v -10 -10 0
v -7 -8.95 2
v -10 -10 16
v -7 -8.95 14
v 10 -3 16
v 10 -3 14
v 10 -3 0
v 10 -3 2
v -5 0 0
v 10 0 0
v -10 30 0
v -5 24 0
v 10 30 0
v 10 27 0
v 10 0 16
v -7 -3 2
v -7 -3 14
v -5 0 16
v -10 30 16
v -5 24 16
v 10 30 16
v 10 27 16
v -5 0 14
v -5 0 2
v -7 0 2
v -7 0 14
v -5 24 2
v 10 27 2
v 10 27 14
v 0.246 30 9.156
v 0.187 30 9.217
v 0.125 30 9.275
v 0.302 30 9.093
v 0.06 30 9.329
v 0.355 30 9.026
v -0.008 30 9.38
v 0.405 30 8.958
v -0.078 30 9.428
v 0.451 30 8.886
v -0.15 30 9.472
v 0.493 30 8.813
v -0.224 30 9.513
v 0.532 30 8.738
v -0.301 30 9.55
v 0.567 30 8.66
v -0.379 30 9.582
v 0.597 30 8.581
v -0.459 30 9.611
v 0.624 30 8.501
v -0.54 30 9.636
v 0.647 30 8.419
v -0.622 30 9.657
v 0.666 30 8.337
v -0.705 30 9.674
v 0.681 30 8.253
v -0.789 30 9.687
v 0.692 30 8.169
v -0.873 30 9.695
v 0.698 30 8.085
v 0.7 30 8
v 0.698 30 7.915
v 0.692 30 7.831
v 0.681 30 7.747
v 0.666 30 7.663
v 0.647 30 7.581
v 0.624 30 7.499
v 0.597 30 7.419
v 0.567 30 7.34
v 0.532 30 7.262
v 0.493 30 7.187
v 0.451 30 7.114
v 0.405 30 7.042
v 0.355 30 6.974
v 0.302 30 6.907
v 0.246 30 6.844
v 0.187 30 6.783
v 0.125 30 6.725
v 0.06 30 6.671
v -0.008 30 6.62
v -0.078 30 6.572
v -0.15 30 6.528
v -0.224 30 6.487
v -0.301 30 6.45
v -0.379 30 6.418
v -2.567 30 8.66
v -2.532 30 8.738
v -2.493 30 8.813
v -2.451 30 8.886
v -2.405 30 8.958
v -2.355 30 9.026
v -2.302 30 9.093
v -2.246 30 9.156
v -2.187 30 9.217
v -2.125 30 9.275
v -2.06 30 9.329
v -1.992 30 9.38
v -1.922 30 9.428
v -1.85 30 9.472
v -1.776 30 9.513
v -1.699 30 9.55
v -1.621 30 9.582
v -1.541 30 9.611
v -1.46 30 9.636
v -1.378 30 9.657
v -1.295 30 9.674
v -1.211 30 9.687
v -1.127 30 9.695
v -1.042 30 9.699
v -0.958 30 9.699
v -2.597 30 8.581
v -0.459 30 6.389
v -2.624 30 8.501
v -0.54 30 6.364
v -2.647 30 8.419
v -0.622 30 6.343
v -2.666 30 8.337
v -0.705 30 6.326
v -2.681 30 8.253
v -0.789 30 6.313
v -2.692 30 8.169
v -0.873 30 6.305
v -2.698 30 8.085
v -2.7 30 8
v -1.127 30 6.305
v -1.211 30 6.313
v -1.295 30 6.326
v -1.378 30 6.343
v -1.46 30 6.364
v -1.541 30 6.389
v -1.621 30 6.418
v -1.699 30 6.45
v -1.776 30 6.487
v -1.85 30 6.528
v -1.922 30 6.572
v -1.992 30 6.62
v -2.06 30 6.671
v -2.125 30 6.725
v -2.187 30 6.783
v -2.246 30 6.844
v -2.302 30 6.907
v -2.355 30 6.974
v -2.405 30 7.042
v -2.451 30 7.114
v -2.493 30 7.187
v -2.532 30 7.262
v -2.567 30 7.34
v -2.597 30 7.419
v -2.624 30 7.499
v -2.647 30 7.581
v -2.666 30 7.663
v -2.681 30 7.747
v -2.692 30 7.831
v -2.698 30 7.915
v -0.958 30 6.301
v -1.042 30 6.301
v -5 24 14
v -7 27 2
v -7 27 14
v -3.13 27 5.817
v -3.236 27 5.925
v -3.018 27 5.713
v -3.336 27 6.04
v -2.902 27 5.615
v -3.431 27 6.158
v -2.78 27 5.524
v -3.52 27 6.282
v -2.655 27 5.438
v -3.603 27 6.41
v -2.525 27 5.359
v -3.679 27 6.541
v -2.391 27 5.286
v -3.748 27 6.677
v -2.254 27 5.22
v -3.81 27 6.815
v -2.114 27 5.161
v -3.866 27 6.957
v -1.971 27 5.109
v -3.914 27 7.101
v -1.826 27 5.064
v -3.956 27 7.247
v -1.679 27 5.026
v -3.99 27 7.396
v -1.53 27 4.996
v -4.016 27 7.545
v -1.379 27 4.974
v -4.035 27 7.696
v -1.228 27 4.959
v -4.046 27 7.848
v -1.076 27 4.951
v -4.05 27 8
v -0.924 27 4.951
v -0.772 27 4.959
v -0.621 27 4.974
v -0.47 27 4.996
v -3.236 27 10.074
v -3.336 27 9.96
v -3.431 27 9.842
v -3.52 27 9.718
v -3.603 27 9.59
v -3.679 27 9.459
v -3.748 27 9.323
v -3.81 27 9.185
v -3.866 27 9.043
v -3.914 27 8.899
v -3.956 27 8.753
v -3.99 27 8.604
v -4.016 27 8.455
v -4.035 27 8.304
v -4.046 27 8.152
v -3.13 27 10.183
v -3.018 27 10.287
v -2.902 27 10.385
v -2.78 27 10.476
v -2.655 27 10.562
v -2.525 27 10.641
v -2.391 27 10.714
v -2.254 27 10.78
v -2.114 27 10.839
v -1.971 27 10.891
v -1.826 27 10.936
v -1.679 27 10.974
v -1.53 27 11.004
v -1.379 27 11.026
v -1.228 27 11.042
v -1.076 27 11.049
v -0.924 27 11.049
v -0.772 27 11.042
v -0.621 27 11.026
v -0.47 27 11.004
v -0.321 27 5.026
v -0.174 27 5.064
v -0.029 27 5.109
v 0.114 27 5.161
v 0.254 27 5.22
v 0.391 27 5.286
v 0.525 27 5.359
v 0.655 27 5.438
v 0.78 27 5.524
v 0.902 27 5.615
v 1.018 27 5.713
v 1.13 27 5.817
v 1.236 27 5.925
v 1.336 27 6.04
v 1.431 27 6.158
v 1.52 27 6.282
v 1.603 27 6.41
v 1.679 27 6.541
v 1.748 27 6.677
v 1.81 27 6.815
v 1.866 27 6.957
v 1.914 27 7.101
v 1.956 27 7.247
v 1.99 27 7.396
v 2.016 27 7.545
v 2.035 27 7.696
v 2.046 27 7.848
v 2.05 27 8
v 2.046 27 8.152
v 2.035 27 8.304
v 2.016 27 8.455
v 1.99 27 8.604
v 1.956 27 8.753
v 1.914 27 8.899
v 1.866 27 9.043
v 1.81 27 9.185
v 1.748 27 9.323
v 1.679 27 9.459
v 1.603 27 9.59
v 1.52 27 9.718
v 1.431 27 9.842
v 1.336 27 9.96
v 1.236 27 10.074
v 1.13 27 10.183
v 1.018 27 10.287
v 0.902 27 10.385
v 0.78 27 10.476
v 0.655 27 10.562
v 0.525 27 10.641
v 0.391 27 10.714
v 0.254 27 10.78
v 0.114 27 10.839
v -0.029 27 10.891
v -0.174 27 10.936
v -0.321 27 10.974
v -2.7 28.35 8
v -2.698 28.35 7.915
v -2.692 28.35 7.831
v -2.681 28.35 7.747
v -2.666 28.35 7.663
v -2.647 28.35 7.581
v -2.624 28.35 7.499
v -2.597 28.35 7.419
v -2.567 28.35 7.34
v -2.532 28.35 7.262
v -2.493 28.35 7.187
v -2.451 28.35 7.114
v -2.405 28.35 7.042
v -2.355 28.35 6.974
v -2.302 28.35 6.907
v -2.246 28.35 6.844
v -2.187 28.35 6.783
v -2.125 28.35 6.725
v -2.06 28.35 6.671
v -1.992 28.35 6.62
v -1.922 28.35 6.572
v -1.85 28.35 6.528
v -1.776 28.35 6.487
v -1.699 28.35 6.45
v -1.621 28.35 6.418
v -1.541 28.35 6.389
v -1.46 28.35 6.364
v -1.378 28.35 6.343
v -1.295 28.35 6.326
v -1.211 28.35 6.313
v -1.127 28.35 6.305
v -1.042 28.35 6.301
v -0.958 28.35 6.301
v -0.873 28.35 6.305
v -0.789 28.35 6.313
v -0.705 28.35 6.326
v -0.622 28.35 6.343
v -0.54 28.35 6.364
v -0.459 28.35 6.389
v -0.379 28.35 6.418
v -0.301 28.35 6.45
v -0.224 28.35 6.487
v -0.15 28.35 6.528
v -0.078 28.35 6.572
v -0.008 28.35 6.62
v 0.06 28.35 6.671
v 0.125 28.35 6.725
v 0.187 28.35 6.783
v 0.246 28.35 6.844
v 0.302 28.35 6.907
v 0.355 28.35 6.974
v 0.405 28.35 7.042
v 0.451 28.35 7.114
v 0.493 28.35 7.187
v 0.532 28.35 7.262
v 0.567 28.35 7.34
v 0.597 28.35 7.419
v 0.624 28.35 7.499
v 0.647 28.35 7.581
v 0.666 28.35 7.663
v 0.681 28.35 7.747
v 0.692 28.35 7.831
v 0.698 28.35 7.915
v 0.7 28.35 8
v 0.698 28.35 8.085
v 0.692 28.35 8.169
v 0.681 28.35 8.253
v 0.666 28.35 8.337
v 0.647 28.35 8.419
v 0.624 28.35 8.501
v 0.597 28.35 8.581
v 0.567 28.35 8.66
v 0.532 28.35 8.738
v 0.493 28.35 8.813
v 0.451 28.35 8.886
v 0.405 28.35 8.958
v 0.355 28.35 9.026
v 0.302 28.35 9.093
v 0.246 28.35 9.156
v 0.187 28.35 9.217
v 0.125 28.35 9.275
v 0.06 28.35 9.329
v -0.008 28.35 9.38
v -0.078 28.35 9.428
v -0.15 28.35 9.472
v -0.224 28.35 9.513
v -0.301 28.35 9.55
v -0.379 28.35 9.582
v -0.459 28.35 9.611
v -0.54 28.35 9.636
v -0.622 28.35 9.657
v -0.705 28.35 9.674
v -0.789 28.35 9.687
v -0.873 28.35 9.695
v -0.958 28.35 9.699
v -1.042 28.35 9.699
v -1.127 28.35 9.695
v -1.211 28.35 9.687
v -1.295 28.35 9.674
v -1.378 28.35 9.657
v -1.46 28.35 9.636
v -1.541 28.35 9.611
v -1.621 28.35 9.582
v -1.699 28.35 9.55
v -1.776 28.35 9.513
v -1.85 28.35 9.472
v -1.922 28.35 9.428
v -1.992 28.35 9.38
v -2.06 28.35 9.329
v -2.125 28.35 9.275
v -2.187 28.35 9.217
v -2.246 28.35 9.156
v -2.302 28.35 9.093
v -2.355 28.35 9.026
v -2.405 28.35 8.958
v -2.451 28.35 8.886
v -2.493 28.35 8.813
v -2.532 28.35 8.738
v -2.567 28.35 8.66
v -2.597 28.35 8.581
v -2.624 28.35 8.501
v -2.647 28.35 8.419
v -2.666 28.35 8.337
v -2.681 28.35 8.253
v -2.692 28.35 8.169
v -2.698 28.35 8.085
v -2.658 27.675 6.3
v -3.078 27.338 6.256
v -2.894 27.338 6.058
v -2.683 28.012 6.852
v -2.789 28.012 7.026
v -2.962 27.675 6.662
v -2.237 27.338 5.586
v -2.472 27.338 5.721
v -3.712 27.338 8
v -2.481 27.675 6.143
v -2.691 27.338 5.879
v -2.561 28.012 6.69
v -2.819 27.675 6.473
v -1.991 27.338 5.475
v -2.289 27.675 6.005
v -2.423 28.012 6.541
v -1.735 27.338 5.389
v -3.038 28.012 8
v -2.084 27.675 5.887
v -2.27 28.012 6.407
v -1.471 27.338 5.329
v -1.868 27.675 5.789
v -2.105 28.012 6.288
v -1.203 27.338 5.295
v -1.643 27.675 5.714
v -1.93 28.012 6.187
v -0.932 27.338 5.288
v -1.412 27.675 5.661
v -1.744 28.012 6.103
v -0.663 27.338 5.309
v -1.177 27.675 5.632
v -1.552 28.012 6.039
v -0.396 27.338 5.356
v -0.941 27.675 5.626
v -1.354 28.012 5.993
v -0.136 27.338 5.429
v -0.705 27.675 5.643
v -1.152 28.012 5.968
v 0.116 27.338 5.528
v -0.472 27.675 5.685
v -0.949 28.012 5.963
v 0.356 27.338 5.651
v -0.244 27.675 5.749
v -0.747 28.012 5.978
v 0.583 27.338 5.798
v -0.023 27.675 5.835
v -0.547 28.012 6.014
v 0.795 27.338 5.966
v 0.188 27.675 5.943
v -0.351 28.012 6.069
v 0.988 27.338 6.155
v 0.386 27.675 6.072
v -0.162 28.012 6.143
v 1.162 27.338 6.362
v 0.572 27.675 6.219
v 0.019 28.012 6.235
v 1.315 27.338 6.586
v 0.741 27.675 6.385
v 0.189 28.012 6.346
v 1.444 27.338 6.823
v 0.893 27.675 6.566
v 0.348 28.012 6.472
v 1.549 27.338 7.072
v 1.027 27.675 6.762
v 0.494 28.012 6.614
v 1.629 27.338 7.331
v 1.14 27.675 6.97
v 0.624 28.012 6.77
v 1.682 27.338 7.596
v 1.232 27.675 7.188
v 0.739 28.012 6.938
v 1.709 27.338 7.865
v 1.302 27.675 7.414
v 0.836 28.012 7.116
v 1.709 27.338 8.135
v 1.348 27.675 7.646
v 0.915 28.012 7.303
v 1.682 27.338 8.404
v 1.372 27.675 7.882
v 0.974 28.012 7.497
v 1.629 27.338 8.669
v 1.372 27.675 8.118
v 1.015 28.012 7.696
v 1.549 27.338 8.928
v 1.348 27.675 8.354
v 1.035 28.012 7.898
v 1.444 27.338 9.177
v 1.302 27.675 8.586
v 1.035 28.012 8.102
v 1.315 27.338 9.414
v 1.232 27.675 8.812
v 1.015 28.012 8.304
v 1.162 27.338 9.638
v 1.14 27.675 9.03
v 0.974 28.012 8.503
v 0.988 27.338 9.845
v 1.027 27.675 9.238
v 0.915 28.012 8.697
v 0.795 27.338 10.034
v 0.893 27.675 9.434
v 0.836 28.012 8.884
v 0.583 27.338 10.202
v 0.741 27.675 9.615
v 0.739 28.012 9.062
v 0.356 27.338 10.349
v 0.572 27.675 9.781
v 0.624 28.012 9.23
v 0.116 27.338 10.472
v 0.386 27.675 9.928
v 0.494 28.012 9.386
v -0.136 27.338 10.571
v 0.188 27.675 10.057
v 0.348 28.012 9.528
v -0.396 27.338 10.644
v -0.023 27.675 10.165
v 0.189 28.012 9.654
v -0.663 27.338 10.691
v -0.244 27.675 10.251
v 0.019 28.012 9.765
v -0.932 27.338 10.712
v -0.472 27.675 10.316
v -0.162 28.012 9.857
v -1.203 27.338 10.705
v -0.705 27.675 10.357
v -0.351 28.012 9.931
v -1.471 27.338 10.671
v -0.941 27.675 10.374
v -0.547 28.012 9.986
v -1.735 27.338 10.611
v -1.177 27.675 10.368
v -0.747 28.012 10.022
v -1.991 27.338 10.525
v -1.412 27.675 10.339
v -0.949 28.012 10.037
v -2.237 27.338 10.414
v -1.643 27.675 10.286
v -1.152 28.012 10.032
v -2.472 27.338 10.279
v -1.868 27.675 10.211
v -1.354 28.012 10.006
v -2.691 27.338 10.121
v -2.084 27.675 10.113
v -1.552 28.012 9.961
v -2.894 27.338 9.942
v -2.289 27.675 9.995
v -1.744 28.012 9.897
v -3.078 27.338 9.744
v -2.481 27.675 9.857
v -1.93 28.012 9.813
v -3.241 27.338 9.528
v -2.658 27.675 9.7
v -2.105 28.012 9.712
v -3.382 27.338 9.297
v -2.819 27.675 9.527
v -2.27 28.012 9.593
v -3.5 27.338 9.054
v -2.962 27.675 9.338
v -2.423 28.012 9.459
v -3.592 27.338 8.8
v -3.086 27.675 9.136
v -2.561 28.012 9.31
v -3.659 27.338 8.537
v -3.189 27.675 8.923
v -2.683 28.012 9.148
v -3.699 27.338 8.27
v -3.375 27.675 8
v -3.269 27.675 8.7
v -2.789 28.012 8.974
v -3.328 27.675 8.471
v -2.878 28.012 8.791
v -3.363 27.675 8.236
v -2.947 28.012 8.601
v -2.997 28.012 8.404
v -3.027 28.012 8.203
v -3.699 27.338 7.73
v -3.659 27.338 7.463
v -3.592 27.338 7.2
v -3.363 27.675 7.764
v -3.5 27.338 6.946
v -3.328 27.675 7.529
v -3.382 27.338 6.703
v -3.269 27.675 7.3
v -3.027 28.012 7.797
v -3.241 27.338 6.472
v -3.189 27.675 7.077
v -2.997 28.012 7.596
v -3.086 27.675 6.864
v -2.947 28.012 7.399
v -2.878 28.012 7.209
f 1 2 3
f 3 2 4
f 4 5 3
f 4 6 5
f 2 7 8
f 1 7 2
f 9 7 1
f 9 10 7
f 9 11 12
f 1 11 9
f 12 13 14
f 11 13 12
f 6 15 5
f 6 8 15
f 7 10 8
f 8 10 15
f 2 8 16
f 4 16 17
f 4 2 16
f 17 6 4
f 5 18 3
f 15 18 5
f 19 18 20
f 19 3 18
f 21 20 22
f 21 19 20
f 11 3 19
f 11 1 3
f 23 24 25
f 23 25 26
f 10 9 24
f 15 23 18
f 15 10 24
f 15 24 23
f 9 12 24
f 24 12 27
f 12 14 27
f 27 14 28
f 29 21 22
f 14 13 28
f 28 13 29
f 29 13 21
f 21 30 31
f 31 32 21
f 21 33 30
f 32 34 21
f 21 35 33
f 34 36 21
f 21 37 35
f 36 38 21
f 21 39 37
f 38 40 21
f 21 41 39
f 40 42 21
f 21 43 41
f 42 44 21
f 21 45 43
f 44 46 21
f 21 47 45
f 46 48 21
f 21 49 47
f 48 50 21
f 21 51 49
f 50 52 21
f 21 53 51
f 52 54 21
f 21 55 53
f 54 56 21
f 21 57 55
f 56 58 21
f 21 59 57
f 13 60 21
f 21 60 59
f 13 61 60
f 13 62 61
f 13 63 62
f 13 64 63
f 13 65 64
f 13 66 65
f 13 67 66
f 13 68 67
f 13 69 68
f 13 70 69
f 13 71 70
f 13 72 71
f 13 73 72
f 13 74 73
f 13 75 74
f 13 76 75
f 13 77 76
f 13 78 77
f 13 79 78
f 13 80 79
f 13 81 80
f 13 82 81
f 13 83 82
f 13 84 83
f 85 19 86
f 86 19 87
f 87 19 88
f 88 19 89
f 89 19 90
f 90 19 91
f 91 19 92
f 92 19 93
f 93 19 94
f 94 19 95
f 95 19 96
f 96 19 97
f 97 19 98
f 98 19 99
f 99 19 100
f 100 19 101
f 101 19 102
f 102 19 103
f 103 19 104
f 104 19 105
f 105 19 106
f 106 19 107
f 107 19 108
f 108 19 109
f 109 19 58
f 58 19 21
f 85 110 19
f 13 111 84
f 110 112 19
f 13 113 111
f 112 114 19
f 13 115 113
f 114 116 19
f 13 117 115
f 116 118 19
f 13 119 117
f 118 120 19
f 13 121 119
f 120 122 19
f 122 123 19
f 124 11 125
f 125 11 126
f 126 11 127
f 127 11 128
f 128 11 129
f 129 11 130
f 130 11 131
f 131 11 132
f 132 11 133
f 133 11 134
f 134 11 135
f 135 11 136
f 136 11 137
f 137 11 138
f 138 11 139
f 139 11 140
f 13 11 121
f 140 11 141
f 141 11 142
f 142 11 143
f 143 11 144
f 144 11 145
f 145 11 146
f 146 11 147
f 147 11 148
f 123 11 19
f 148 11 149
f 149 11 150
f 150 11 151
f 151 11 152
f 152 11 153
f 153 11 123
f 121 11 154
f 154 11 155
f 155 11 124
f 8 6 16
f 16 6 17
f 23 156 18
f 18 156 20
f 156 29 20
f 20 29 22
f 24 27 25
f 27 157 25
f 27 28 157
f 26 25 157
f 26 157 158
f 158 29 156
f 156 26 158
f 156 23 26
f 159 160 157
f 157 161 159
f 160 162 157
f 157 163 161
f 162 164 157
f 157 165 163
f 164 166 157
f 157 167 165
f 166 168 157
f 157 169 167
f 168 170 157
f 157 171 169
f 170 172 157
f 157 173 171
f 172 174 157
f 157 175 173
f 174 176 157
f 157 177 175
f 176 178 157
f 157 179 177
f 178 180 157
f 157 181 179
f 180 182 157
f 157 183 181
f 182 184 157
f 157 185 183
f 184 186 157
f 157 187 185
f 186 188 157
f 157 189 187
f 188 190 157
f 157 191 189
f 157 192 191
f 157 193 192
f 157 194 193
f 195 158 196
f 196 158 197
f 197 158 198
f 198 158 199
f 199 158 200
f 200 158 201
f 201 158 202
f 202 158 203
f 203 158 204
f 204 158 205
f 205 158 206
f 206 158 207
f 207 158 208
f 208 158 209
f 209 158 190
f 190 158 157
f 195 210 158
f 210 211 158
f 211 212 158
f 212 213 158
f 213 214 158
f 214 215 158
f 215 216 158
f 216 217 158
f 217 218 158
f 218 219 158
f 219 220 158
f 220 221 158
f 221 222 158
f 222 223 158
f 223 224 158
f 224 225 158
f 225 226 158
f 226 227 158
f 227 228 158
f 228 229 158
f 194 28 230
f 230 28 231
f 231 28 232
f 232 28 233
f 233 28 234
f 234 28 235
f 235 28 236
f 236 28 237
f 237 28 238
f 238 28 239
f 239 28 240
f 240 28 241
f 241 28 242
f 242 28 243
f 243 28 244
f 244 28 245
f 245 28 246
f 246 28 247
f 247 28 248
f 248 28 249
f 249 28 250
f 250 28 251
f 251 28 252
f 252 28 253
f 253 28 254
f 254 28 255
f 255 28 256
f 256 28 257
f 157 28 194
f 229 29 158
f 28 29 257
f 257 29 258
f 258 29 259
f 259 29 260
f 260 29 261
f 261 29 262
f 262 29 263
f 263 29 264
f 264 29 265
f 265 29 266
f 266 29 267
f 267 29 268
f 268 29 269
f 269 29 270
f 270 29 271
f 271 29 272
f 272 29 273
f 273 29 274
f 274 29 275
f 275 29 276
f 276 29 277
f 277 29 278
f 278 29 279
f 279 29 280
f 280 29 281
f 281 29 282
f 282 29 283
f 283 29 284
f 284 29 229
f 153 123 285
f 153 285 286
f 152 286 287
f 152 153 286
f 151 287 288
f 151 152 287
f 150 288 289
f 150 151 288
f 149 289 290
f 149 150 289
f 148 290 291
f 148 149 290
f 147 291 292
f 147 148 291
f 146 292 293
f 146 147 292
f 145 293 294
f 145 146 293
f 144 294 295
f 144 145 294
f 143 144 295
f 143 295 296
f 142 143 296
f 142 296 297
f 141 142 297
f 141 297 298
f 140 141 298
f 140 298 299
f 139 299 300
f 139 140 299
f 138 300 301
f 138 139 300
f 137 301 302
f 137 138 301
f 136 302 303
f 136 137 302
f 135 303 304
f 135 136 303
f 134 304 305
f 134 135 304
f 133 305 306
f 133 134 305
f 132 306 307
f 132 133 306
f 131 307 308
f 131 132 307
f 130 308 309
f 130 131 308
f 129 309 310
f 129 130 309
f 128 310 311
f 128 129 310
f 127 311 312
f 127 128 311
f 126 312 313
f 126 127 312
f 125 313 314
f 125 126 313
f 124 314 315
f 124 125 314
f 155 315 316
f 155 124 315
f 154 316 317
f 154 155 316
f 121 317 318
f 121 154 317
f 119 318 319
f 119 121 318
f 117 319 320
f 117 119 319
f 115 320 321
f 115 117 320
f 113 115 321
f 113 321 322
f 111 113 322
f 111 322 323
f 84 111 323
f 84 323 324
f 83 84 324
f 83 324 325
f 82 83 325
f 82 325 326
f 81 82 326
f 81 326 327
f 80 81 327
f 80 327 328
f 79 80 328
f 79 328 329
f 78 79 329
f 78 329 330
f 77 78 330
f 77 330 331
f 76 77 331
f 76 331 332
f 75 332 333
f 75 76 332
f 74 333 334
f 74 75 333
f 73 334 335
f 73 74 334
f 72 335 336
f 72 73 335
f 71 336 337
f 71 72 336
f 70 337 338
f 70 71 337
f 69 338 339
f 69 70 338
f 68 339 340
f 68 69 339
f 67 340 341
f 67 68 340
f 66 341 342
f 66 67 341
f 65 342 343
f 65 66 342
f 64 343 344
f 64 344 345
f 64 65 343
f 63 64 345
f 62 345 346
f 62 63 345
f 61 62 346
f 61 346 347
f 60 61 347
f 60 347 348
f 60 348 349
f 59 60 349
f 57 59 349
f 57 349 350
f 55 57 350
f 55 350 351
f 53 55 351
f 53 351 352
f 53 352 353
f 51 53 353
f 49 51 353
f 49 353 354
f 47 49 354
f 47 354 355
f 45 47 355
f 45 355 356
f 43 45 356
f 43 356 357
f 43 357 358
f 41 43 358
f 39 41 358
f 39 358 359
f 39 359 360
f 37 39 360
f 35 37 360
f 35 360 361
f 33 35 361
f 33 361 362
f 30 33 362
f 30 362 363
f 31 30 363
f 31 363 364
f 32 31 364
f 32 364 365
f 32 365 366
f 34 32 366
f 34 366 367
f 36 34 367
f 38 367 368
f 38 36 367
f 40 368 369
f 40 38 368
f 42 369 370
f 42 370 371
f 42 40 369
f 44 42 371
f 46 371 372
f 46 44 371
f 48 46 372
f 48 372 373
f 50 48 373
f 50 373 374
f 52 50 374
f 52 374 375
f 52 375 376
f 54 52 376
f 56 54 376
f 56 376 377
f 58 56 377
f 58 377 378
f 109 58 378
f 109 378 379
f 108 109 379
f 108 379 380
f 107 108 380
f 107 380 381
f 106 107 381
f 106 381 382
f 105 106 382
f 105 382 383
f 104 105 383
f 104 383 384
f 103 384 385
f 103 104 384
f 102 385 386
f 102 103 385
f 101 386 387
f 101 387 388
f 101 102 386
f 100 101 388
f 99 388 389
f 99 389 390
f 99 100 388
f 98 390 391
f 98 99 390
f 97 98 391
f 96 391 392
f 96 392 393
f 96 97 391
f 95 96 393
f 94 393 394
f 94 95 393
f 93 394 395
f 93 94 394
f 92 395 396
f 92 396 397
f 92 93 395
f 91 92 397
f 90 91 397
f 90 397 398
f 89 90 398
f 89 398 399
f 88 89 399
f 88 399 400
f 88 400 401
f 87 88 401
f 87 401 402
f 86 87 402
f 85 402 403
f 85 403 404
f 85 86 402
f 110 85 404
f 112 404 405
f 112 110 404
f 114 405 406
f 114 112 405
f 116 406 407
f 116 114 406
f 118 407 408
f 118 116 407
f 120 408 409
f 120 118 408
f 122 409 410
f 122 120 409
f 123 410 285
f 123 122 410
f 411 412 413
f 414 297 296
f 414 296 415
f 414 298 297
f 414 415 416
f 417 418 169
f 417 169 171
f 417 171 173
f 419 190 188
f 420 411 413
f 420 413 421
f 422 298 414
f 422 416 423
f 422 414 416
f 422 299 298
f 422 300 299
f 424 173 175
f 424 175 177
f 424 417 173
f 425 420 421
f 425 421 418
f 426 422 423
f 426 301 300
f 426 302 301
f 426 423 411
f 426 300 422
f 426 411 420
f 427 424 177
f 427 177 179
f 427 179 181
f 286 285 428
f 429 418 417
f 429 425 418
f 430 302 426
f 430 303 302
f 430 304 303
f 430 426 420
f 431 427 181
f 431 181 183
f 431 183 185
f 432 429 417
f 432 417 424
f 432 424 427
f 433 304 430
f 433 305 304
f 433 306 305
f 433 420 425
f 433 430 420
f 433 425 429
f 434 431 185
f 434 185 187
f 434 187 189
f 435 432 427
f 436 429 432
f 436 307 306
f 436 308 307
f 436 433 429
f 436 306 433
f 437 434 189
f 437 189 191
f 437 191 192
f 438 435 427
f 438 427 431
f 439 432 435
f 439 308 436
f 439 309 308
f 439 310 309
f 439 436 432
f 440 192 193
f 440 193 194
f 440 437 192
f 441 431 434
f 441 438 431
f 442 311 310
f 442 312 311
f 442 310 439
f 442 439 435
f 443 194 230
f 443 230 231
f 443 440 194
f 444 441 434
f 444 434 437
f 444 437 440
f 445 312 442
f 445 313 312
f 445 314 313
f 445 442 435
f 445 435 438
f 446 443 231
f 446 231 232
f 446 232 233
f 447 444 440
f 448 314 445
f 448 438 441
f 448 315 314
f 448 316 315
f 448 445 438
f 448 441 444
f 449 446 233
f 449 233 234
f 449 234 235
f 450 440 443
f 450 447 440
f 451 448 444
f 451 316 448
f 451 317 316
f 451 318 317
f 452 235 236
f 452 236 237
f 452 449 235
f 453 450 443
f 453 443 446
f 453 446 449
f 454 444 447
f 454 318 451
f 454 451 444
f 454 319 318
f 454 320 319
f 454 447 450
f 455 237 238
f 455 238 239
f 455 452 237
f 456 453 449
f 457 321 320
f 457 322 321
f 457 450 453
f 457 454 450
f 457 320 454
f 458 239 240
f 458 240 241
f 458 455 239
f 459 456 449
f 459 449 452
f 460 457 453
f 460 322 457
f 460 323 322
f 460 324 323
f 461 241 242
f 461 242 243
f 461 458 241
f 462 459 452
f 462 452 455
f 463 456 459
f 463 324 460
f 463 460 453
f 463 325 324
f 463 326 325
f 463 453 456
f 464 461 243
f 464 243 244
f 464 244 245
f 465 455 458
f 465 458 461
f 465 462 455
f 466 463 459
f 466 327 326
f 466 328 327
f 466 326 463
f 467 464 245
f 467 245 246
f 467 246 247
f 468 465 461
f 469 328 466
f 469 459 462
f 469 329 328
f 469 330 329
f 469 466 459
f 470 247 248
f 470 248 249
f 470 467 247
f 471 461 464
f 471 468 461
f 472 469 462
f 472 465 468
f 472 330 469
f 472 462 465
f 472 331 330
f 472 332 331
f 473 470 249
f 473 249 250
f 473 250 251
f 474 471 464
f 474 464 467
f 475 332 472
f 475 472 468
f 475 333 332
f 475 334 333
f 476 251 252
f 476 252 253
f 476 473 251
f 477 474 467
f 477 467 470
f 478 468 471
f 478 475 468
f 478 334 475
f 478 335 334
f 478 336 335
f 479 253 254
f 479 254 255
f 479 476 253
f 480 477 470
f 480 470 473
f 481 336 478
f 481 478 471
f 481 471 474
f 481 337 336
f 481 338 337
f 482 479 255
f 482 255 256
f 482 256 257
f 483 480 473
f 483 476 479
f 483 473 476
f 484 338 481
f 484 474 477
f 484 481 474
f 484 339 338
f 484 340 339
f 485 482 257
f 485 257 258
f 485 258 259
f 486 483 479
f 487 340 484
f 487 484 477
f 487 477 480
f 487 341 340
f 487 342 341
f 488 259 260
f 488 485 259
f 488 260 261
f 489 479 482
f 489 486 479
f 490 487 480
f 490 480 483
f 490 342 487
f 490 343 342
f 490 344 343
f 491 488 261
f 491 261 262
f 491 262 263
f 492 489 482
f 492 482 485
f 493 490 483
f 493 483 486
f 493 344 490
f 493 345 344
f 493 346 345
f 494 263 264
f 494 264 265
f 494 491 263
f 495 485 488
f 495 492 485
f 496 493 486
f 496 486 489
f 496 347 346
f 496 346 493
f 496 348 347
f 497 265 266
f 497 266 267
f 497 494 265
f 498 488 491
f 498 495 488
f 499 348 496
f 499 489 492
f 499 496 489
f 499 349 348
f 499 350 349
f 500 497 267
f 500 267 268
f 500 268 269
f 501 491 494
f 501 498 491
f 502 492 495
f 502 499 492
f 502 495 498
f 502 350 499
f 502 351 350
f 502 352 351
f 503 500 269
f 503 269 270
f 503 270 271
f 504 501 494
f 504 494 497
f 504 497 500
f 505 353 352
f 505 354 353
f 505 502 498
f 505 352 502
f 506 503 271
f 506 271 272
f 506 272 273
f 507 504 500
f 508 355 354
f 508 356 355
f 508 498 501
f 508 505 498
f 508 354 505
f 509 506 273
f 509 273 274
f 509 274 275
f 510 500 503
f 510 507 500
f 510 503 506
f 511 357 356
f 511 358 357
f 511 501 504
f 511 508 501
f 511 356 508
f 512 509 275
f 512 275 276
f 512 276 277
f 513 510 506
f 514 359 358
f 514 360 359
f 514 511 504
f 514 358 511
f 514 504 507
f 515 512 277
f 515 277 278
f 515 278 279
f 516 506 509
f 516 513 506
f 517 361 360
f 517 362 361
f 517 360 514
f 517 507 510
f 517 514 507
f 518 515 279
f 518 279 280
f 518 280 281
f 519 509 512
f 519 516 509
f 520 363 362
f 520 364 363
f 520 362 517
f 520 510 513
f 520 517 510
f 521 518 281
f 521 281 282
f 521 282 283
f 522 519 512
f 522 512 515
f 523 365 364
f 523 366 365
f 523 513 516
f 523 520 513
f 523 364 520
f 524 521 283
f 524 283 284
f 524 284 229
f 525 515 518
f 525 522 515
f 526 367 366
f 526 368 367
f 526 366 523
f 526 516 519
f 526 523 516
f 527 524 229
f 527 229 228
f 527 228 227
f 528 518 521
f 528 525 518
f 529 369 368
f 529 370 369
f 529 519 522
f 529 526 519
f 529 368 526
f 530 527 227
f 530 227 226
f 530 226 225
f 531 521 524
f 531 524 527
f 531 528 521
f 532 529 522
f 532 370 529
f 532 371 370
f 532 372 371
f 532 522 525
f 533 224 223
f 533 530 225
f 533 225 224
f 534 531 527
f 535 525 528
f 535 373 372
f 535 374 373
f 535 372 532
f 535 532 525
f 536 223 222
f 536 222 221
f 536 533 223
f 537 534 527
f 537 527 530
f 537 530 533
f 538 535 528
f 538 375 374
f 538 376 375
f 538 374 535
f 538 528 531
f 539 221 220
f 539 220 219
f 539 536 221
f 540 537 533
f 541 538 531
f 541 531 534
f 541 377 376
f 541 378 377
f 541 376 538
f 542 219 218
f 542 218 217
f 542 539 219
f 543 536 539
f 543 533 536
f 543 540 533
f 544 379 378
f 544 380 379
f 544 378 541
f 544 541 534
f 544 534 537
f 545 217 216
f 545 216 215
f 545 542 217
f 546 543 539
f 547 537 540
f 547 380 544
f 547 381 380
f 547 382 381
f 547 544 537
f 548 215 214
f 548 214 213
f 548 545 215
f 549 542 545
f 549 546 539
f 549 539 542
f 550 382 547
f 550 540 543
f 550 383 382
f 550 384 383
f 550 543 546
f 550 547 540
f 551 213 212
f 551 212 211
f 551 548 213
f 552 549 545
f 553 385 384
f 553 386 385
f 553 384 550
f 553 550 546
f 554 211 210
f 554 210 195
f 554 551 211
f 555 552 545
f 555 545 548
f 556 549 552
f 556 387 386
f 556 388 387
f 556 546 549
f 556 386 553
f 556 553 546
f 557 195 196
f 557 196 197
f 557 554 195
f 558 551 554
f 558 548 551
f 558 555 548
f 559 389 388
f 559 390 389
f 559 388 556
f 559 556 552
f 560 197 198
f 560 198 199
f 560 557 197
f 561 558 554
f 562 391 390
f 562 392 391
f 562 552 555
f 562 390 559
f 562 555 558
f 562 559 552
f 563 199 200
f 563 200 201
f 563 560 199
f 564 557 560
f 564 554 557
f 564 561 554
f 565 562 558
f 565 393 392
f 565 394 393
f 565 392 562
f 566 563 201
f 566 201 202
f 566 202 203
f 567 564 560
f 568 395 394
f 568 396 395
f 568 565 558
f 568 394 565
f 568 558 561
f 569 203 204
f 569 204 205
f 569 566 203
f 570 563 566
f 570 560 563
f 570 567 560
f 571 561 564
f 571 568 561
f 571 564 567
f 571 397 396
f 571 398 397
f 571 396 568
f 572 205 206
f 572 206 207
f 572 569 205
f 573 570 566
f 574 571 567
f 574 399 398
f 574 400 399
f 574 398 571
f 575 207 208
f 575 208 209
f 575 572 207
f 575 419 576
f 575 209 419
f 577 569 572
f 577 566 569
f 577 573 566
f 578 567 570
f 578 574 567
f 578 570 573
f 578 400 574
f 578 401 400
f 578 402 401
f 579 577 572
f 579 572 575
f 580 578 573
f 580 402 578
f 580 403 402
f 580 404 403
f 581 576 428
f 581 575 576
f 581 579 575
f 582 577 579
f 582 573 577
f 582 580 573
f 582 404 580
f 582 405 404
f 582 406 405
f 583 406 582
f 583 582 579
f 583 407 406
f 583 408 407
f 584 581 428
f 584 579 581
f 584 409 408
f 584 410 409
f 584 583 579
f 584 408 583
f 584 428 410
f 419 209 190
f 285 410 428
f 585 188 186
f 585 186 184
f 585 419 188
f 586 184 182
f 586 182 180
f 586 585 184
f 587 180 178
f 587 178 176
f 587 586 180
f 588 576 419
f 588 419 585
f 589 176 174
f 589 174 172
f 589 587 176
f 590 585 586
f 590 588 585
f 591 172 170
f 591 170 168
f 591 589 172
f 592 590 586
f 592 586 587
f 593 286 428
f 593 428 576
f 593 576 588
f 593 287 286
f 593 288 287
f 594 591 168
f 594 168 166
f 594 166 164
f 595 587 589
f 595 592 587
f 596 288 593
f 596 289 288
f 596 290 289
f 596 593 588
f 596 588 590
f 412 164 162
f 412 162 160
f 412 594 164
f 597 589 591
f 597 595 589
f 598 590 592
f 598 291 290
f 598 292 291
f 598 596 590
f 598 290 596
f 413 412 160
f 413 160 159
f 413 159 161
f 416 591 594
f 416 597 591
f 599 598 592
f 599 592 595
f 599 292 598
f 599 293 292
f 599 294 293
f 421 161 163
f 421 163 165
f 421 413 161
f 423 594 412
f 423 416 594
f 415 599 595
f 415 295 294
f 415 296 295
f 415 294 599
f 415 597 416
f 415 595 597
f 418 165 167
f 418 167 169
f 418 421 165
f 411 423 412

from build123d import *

# Parameters (mm, degrees)
PAD_DEPTH        = 16
SKETCH001_W      = 27
SKETCH001_H      = 12
SKETCH001_W_2    = 7
POCKET_DEPTH     = 17
HOLE_D           = 3.4
HOLE_DEPTH       = 25
HOLE_CSINK_D     = 6.1
HOLE_CSINK_ANGLE = 90


with BuildPart() as part:
    # Sketch → Pad (new body)
    with BuildSketch(Plane.XY):
        Polygon((-10, -10), (10, -3), (10, 0), (-5, 0), (-5, 24), (10, 27), (10, 30), (-10, 30), align=None)
    extrude(amount=PAD_DEPTH)

    # Sketch001 (on Face6 of Pad) → Pocket (cut)
    with BuildSketch(Plane.YZ.offset(10)):
        with Locations((13.5, 8)):
            Rectangle(SKETCH001_W, SKETCH001_H)
        with Locations((-6.5, 8)):
            Rectangle(SKETCH001_W_2, SKETCH001_H)
    extrude(amount=-POCKET_DEPTH, mode=Mode.SUBTRACT)

    # Hole
    with Locations(Plane.XZ.offset(-27)):
        with Locations((-1, 8)):
            CounterSinkHole(HOLE_D / 2, HOLE_CSINK_D / 2, depth=HOLE_DEPTH, counter_sink_angle=HOLE_CSINK_ANGLE)


solid = part.part
